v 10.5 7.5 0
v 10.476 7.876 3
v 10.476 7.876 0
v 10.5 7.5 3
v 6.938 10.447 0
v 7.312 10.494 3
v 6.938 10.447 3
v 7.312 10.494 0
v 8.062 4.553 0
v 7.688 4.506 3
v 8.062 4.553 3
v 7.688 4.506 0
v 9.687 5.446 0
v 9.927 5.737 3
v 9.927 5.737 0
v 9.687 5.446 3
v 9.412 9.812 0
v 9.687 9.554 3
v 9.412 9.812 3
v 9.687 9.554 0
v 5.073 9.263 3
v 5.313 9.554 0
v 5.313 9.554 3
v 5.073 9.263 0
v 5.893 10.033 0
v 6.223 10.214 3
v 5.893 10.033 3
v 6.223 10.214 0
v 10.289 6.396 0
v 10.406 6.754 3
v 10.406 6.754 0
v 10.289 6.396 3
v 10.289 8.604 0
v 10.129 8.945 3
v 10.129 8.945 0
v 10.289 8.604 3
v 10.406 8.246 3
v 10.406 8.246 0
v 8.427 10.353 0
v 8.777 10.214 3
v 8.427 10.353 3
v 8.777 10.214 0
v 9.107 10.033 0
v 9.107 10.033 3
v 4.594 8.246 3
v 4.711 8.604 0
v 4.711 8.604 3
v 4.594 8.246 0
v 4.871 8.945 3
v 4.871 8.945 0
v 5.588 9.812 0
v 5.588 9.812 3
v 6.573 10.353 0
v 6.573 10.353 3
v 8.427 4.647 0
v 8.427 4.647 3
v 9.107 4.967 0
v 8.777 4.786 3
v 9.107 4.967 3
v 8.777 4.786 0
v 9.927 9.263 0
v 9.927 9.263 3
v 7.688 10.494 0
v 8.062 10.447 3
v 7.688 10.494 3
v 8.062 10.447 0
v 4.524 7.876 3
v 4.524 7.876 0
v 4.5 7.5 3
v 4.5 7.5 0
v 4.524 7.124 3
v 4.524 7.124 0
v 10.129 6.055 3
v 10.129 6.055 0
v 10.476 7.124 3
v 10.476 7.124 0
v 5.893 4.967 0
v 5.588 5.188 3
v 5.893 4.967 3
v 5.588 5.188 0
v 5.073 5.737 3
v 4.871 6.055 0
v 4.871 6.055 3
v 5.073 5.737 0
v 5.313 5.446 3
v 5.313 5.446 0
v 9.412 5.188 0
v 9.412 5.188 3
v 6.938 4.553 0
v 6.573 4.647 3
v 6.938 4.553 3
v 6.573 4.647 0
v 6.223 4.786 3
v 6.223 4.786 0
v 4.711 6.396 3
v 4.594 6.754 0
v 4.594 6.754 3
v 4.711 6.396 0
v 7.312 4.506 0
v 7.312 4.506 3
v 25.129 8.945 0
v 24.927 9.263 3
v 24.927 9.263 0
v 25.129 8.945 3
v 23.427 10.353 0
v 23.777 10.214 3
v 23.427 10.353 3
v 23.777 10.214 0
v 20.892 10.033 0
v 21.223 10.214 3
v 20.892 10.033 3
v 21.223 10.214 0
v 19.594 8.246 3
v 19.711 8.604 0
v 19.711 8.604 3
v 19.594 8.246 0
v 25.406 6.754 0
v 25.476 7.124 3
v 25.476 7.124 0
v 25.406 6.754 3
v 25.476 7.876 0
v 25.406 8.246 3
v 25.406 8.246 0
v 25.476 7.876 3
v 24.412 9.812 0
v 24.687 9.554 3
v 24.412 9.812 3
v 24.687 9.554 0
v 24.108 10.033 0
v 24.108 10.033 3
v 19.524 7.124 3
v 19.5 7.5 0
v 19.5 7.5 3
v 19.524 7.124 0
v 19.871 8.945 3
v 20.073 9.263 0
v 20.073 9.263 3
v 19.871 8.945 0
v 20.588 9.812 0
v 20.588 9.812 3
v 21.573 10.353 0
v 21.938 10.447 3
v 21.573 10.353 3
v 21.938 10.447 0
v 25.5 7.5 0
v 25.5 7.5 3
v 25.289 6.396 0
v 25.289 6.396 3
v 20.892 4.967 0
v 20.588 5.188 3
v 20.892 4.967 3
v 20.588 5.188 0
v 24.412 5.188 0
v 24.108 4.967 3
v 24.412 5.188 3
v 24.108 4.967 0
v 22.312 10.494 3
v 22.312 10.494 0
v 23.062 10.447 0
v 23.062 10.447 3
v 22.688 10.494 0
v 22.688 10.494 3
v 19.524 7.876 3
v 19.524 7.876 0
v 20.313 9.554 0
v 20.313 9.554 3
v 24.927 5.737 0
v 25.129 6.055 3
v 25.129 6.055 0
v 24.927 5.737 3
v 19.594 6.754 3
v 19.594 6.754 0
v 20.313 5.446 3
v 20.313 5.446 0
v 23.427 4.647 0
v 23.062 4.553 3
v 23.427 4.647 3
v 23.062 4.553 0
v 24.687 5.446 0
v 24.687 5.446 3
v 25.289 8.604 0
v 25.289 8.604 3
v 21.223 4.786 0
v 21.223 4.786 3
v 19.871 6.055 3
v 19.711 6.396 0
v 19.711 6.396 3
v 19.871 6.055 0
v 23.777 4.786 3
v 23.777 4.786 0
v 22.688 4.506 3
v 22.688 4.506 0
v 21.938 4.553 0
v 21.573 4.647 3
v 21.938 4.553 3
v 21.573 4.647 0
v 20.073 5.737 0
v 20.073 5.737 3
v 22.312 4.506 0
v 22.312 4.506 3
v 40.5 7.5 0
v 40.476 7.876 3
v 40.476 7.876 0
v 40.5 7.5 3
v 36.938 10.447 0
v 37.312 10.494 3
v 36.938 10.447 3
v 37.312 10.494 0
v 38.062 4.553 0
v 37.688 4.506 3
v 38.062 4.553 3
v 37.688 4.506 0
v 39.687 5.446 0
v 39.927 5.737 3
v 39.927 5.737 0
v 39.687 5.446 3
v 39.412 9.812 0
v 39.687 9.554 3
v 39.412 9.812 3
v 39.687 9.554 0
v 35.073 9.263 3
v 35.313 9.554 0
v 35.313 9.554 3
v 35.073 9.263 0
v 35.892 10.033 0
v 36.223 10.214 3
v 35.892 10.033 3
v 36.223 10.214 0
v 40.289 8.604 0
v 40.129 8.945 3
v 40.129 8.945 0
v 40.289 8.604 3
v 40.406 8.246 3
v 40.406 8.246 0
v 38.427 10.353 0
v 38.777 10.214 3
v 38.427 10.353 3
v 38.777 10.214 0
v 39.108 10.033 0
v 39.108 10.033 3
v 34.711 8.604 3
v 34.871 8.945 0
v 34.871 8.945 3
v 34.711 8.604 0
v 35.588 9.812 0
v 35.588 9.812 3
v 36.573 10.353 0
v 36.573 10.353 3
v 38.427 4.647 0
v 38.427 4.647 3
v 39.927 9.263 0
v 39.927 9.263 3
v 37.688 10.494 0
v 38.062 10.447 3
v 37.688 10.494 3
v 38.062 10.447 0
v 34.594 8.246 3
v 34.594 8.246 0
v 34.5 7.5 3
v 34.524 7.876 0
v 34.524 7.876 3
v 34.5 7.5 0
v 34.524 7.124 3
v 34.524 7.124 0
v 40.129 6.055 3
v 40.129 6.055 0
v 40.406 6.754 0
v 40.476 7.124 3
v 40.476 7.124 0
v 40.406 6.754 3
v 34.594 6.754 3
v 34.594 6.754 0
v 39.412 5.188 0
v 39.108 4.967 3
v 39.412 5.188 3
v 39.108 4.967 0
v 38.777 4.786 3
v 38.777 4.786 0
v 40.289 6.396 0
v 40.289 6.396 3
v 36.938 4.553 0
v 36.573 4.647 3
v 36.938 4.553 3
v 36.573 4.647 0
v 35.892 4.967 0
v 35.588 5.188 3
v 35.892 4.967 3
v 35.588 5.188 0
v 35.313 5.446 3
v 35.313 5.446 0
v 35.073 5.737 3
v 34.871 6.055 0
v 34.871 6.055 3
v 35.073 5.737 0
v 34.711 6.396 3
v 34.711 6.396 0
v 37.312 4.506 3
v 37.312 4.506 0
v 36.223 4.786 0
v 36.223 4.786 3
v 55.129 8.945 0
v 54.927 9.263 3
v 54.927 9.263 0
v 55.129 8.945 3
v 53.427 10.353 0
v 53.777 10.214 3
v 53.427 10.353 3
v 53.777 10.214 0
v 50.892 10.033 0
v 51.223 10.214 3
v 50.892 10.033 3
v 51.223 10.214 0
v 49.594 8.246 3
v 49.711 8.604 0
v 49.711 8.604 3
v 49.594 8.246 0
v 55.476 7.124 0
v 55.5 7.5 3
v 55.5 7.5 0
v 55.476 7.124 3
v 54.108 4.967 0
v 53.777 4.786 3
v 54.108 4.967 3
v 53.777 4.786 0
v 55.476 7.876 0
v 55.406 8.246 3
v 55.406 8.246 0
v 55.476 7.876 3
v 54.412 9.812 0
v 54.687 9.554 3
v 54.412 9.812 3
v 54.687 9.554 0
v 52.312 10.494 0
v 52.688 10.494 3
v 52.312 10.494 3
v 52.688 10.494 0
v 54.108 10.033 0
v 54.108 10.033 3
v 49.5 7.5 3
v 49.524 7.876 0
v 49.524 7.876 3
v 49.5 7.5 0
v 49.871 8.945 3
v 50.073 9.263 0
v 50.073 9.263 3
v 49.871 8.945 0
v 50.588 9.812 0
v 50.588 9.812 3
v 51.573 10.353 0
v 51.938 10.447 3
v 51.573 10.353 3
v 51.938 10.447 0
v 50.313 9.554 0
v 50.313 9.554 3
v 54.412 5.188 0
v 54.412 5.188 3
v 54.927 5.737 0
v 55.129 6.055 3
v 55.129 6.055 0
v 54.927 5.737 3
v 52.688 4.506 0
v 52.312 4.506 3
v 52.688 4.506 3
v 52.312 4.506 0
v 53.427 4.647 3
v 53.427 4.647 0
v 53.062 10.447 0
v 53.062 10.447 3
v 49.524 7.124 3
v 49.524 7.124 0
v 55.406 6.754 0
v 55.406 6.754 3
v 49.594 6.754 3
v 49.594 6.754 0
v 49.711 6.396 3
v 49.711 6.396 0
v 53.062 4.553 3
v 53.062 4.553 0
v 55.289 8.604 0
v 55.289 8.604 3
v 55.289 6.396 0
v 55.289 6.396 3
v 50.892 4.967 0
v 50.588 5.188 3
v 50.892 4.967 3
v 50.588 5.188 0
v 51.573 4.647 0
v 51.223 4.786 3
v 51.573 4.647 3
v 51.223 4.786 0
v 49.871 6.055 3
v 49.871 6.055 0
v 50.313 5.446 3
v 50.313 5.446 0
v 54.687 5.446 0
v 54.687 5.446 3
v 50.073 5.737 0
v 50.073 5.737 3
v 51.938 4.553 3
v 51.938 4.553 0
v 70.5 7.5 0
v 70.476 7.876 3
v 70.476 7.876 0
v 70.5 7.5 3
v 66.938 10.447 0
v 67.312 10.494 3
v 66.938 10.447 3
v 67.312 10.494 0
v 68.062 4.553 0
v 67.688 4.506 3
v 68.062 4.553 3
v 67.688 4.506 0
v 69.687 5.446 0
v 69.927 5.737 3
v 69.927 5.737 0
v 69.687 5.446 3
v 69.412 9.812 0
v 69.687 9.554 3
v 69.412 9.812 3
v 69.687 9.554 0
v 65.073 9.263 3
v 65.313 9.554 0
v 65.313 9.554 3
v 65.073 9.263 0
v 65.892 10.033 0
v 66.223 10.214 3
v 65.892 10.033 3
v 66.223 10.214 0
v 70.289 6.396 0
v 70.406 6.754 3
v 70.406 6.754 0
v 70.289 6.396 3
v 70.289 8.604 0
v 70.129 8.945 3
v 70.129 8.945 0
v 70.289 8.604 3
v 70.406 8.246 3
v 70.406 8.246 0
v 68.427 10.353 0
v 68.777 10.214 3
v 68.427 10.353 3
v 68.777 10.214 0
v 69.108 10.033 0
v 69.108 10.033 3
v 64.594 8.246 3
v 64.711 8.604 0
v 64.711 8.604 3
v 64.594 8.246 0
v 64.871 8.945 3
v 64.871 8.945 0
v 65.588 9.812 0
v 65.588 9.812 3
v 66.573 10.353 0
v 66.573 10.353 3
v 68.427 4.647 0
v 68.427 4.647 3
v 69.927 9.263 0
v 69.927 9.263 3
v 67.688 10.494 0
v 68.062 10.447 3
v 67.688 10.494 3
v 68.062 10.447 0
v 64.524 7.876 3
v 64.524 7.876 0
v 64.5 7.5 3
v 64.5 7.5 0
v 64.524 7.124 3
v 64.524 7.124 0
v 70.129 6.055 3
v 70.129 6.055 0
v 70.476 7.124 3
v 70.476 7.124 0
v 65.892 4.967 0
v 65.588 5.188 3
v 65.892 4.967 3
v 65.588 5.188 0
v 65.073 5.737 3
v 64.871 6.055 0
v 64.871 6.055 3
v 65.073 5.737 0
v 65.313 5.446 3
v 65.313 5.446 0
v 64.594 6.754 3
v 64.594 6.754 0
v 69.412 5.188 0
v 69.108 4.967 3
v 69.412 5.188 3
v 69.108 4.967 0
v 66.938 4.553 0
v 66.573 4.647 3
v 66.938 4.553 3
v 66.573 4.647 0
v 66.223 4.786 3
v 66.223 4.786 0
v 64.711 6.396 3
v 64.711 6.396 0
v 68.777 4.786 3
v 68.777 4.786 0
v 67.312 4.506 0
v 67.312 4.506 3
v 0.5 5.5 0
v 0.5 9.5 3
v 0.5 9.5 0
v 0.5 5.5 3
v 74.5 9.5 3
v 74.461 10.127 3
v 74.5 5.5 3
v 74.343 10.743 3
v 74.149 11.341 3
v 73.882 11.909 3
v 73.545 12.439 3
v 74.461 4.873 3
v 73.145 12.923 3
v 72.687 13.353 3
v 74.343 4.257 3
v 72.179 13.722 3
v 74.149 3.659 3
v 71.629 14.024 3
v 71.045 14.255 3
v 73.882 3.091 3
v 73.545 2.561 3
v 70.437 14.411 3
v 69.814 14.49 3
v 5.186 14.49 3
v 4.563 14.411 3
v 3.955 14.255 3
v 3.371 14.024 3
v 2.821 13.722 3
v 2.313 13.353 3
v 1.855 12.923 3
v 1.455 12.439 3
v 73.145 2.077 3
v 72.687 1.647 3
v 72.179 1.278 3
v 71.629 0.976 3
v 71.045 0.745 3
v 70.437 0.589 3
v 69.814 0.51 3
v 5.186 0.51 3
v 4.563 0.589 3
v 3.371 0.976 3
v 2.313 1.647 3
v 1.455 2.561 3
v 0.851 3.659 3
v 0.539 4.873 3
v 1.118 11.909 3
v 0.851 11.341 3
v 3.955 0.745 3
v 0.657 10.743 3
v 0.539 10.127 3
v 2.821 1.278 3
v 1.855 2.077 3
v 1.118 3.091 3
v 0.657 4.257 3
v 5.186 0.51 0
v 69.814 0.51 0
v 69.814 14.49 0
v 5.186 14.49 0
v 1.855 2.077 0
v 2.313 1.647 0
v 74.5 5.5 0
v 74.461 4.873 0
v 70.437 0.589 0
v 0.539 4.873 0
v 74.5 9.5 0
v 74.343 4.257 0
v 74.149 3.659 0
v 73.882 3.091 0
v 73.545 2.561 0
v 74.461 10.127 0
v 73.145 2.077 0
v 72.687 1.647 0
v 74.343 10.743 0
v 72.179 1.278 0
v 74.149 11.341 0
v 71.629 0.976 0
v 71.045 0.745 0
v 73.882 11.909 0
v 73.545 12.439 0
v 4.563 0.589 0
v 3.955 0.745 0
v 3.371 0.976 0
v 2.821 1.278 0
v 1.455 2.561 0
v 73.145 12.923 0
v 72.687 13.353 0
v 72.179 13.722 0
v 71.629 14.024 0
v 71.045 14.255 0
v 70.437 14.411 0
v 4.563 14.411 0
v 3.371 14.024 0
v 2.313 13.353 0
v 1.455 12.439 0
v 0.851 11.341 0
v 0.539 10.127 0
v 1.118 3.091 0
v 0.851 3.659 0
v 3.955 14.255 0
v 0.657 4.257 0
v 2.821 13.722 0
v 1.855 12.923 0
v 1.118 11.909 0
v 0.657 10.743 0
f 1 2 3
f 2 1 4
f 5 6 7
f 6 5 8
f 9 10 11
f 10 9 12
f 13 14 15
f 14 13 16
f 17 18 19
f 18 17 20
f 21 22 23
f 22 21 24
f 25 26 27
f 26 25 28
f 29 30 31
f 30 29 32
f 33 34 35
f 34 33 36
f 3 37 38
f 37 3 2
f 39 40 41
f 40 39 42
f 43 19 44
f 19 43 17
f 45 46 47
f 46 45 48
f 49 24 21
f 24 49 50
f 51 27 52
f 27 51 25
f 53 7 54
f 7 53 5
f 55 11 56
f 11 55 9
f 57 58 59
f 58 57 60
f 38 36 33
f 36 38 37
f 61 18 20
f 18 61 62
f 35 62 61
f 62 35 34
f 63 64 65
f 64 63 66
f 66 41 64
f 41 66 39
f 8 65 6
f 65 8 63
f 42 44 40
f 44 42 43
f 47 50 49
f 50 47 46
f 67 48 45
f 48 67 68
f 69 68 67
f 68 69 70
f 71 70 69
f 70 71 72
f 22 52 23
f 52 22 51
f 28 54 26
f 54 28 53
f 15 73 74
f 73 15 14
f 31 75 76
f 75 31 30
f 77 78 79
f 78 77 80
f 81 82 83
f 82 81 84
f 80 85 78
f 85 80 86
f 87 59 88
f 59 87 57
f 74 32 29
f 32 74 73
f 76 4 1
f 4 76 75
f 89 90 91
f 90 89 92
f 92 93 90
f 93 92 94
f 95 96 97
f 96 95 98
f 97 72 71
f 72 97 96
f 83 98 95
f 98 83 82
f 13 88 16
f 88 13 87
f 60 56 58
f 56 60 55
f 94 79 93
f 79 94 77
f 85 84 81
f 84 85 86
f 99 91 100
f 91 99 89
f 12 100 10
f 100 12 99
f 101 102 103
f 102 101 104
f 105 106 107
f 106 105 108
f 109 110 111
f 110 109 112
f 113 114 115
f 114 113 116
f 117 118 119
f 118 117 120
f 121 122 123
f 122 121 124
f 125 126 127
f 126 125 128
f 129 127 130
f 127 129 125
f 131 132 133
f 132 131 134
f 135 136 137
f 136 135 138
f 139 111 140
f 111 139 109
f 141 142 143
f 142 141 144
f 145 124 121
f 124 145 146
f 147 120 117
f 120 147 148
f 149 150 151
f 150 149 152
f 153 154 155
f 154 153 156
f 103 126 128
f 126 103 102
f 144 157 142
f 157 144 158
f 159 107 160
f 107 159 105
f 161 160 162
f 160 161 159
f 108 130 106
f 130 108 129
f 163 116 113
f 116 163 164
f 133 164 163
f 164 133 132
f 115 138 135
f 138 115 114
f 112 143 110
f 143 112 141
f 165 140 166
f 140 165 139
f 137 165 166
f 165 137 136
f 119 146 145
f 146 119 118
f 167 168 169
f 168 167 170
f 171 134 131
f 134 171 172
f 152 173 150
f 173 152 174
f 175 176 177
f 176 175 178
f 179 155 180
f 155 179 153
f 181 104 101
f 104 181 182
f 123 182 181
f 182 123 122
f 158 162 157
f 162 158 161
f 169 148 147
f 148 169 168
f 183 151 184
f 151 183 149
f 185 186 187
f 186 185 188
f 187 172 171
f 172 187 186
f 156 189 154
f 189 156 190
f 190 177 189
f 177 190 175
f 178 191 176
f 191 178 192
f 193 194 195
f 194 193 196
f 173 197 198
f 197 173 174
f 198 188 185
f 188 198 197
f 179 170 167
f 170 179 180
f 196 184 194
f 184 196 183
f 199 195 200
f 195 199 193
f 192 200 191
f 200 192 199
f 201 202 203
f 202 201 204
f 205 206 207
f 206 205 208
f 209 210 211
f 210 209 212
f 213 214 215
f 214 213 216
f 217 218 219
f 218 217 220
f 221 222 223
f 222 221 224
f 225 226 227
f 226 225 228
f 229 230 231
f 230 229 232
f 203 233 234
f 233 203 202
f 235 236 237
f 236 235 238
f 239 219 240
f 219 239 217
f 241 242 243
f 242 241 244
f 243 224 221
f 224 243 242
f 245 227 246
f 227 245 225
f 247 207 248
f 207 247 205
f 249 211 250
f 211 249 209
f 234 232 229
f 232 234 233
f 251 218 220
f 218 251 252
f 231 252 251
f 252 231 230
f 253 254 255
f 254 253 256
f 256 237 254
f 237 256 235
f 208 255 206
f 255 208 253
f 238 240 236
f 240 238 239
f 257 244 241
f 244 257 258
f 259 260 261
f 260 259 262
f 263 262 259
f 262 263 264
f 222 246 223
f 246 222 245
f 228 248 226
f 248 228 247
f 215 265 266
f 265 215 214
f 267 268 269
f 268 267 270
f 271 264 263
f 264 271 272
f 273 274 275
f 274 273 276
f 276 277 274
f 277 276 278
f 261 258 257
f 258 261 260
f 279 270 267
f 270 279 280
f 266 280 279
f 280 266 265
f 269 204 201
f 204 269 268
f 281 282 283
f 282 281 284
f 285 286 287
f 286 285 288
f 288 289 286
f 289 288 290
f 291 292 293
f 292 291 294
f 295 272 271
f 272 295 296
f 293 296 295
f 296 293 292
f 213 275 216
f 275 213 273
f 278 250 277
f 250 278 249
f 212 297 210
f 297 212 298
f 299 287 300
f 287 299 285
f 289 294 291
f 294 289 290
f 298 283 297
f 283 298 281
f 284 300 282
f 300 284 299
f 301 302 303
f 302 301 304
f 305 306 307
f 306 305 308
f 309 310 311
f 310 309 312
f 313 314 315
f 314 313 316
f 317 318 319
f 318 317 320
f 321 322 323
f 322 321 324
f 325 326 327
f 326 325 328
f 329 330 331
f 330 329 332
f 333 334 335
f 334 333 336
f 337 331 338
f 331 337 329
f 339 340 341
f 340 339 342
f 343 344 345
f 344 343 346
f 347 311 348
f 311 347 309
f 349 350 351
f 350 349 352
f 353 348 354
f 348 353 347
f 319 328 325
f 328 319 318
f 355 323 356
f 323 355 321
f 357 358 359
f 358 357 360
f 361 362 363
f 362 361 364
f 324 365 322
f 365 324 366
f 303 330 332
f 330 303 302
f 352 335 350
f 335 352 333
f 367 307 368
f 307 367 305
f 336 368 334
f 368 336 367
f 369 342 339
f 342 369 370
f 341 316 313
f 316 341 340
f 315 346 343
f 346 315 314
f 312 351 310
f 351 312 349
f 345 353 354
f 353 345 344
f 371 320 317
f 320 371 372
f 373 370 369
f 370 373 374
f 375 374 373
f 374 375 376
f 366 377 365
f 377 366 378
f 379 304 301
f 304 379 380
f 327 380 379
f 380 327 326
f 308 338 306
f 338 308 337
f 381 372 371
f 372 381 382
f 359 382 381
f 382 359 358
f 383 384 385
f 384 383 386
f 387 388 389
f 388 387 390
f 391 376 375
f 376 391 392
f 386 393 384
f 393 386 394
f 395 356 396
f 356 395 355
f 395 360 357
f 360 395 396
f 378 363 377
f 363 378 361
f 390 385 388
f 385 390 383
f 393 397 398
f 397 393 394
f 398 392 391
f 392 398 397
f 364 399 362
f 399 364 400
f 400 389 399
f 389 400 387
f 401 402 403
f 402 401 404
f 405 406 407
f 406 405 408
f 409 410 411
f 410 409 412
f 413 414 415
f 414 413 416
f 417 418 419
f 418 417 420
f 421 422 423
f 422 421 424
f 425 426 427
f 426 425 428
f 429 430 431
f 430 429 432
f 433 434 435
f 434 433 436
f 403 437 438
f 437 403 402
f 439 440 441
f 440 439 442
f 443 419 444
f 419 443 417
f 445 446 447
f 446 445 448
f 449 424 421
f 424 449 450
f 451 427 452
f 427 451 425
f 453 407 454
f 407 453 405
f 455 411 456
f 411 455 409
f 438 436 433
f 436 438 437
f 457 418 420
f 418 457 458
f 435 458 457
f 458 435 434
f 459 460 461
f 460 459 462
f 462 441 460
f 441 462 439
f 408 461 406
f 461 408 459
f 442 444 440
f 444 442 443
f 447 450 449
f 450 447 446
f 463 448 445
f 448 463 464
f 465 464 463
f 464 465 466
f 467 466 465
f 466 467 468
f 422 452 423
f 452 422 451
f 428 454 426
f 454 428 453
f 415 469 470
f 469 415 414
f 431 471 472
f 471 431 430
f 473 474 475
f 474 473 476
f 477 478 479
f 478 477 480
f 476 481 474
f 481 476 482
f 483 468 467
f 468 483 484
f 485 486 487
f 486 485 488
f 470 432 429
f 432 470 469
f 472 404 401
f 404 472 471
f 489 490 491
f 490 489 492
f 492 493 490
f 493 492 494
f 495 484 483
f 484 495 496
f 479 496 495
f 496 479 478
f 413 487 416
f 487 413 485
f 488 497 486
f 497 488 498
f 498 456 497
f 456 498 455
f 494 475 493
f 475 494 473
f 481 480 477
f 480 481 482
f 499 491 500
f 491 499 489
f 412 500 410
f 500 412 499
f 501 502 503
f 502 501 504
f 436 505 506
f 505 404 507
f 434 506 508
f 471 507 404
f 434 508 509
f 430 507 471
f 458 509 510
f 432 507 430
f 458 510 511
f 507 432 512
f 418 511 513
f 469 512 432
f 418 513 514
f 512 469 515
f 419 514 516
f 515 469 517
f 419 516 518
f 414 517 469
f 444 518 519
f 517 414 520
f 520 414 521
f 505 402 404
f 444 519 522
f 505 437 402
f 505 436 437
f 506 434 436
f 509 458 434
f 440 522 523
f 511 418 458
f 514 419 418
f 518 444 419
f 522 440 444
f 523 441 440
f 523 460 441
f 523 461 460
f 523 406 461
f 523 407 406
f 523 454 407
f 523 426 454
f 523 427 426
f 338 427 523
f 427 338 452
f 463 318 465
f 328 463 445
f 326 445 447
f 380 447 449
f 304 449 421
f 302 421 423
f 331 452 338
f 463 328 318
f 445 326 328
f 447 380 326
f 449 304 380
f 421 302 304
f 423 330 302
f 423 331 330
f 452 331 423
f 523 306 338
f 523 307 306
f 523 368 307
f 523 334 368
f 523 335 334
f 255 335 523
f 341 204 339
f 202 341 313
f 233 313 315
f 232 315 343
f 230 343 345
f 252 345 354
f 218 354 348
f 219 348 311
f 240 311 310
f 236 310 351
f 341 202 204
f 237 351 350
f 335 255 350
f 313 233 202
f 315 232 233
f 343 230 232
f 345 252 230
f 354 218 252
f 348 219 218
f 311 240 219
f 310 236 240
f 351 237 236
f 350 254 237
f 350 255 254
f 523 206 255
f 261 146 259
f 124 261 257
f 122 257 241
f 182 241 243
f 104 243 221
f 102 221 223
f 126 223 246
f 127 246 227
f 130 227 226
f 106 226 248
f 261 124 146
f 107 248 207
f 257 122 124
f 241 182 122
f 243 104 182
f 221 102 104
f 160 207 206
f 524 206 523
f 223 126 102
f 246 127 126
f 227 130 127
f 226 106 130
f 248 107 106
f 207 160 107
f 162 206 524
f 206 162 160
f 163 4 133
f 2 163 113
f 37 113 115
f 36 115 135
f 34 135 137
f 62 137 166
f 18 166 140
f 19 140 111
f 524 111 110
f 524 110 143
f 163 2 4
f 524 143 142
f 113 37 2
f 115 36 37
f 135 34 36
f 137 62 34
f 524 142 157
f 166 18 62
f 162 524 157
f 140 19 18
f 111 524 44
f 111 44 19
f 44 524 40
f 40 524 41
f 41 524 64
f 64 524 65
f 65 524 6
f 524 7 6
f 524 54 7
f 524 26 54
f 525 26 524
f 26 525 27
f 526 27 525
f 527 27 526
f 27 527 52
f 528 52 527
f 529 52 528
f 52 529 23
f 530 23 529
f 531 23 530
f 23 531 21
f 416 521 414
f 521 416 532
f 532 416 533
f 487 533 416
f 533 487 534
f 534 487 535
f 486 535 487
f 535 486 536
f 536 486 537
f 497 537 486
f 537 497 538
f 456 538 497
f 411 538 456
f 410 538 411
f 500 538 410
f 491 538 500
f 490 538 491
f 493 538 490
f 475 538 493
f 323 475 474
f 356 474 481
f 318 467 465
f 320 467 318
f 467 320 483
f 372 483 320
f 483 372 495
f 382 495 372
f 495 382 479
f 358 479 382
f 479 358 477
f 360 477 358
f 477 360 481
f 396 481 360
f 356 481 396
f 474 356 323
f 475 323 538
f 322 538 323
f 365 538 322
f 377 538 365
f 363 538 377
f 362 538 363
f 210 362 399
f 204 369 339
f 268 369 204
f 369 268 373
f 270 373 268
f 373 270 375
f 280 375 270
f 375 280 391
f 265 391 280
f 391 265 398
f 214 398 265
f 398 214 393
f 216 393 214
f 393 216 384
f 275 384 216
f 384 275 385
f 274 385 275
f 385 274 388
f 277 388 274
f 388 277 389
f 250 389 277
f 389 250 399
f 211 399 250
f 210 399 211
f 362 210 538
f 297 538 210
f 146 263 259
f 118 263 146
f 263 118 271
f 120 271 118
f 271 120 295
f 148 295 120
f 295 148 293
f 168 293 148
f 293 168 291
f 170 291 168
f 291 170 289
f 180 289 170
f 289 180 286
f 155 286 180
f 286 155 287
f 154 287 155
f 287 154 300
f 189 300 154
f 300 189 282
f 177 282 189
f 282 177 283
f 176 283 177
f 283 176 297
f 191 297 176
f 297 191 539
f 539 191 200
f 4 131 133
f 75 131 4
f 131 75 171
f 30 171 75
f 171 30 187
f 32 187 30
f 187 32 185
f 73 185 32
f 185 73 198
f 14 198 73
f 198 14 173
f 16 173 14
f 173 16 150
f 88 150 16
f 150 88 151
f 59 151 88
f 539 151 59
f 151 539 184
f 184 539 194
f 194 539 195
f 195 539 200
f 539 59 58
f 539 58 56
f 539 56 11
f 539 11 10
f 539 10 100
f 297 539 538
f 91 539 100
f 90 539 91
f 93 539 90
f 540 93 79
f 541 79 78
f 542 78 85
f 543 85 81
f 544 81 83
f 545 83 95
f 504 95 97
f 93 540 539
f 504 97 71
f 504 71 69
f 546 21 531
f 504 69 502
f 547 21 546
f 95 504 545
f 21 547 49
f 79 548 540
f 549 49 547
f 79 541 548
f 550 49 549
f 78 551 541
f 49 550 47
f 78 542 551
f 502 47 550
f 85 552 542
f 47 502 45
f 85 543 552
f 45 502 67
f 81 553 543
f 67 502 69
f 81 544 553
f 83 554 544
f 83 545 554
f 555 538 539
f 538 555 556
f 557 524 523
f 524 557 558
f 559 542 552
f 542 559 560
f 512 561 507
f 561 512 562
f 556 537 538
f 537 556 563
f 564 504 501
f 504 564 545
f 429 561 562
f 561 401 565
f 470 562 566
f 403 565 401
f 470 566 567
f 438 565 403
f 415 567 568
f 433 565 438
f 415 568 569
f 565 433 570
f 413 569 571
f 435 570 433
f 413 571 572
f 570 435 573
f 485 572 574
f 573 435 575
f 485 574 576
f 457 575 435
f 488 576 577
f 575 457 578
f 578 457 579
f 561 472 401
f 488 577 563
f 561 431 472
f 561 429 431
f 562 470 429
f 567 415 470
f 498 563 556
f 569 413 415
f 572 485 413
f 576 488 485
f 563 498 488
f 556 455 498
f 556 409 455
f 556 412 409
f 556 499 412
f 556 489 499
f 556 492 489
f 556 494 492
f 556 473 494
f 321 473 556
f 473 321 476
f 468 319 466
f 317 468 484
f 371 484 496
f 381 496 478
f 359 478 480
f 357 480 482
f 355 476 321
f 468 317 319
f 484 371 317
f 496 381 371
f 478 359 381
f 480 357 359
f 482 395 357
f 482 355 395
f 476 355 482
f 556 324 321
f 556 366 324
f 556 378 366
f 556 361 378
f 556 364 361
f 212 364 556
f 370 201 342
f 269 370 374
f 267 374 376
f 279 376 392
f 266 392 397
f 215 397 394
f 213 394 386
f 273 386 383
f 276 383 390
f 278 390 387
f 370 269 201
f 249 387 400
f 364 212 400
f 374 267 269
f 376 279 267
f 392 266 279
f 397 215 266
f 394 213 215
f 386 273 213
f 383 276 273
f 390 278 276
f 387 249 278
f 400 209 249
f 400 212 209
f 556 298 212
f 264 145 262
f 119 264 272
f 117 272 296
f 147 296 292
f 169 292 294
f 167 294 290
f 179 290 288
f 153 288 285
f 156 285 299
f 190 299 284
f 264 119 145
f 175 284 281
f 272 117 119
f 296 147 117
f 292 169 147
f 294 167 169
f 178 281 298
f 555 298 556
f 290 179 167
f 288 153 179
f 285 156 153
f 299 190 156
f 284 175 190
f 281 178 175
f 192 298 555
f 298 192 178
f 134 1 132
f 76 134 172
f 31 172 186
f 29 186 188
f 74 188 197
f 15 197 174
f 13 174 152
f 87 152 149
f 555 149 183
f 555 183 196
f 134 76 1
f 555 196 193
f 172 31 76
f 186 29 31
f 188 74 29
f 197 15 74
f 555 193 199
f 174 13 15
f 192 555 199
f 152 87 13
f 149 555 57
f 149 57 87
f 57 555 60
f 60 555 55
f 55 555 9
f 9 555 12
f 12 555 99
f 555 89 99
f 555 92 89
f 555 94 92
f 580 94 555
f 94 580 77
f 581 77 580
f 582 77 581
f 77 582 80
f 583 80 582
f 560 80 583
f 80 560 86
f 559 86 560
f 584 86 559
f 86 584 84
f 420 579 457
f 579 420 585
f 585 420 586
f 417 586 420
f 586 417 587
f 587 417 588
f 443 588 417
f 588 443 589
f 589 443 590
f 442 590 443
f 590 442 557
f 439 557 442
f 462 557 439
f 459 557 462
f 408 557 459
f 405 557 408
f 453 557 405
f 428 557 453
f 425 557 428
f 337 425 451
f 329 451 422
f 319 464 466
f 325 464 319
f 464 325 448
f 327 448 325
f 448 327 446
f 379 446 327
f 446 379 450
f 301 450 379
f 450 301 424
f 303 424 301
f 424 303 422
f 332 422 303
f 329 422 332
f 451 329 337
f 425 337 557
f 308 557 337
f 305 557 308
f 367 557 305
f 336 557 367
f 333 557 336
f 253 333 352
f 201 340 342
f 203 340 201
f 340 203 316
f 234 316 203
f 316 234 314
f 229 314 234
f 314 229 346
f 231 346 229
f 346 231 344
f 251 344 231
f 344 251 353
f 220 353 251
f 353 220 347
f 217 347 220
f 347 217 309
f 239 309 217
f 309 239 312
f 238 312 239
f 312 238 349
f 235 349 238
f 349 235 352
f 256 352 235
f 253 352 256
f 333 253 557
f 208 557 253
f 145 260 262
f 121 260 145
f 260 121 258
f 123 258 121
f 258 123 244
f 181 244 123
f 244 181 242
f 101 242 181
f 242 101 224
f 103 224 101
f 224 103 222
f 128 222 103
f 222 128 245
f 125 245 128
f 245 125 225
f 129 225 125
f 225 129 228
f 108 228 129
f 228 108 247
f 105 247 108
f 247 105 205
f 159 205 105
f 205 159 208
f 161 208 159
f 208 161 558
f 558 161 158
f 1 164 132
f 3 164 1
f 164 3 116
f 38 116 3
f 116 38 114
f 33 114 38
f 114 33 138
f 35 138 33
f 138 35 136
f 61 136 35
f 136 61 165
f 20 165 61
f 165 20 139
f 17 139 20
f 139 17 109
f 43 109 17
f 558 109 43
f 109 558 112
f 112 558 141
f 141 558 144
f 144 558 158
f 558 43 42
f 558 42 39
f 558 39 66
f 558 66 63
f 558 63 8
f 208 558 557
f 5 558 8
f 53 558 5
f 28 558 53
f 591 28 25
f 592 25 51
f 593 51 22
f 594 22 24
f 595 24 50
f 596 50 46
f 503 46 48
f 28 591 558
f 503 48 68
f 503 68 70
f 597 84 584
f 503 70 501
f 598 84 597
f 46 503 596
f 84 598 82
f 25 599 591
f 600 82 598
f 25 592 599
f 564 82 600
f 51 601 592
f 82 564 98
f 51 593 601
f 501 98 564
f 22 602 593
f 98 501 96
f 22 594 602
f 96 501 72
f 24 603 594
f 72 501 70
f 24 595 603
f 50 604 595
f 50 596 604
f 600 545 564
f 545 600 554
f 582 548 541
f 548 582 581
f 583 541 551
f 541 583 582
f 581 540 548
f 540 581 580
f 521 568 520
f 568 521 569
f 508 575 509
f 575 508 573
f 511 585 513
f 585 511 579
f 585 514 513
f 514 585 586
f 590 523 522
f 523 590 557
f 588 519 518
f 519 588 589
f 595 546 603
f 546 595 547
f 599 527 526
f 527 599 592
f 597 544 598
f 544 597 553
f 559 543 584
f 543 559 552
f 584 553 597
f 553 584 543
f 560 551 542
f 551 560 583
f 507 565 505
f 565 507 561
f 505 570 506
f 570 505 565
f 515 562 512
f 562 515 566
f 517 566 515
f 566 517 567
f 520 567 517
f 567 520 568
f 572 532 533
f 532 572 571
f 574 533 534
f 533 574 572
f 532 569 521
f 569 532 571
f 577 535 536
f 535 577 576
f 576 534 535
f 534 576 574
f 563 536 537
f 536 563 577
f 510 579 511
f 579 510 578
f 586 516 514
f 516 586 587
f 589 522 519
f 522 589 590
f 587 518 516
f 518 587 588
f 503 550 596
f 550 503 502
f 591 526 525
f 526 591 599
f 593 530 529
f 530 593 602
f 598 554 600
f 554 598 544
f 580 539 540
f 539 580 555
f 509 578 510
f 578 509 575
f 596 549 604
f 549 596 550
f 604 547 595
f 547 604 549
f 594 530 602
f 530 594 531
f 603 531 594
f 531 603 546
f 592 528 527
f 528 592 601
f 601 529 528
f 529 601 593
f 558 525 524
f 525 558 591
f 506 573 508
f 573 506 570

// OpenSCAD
// Generated by SolidPython 1.1.3 on 2023-01-30 13:34:20
$fn = 50;


difference() {
	union() {
		translate(v = [37.5000000000, 7.5000000000, 0]) {
			rotate(a = [0, 0, 0]) {
				hull() {
					translate(v = [-32.0000000000, 2.0000000000, 0]) {
						rotate(a = [0, 0, 0]) {
							translate(v = [0, 0, 0]) {
								rotate(a = [0, 0, 0]) {
									cylinder(h = 3, r = 5);
								}
							}
						}
					}
					translate(v = [32.0000000000, 2.0000000000, 0]) {
						rotate(a = [0, 0, 0]) {
							translate(v = [0, 0, 0]) {
								rotate(a = [0, 0, 0]) {
									cylinder(h = 3, r = 5);
								}
							}
						}
					}
					translate(v = [-32.0000000000, -2.0000000000, 0]) {
						rotate(a = [0, 0, 0]) {
							translate(v = [0, 0, 0]) {
								rotate(a = [0, 0, 0]) {
									cylinder(h = 3, r = 5);
								}
							}
						}
					}
					translate(v = [32.0000000000, -2.0000000000, 0]) {
						rotate(a = [0, 0, 0]) {
							translate(v = [0, 0, 0]) {
								rotate(a = [0, 0, 0]) {
									cylinder(h = 3, r = 5);
								}
							}
						}
					}
				}
			}
		}
	}
	union() {
		translate(v = [7.5000000000, 7.5000000000, 0]) {
			rotate(a = [0, 0, 0]) {
				translate(v = [0, 0, -50]) {
					rotate(a = [0, 0, 0]) {
						cylinder(h = 100, r = 3.0000000000);
					}
				}
			}
		}
		translate(v = [22.5000000000, 7.5000000000, 0]) {
			rotate(a = [0, 0, 0]) {
				translate(v = [0, 0, -50]) {
					rotate(a = [0, 0, 0]) {
						cylinder(h = 100, r = 3.0000000000);
					}
				}
			}
		}
		translate(v = [37.5000000000, 7.5000000000, 0]) {
			rotate(a = [0, 0, 0]) {
				translate(v = [0, 0, -50]) {
					rotate(a = [0, 0, 0]) {
						cylinder(h = 100, r = 3.0000000000);
					}
				}
			}
		}
		translate(v = [52.5000000000, 7.5000000000, 0]) {
			rotate(a = [0, 0, 0]) {
				translate(v = [0, 0, -50]) {
					rotate(a = [0, 0, 0]) {
						cylinder(h = 100, r = 3.0000000000);
					}
				}
			}
		}
		translate(v = [67.5000000000, 7.5000000000, 0]) {
			rotate(a = [0, 0, 0]) {
				translate(v = [0, 0, -50]) {
					rotate(a = [0, 0, 0]) {
						cylinder(h = 100, r = 3.0000000000);
					}
				}
			}
		}
	}
}
/***********************************************
*********      SolidPython code:      **********
************************************************
 
from solid import *
import os
import subprocess

import oomB

import opsc_library_gen

mode = "laser"
#mode = "3d_print"

defined_objects = {}

radius_dict = {}
countersunk_dict = {}


def set_mode(m):
    global mode
    mode = m
    radius_dict['M6'] = 6.5/2
    radius_dict['M3'] = 3.3/2
    if mode == "laser":
        radius_dict['M6'] = 6/2
        radius_dict['M3'] = 3/2

    countersunk_dict['M3'] = {}
    countersunk_dict['M3']['little_rad'] = radius_dict['M3']
    countersunk_dict['M3']['big_rad'] = (5.5+0.6)/2
    if mode == "laser":
        countersunk_dict['M3']['big_rad'] = (4.75+0.6)/2
        countersunk_dict['M3']['little_rad'] = (4.75+0.6)/2

    countersunk_dict['M3']['height'] = 1.7


def opsc_make_object(filename, objects, save_type="none",resolution=50, layers = 1, tilediff = 200, mode="laser"):
    set_mode(mode)
    save_type = save_type.lower()
    os.makedirs(os.path.dirname(filename), exist_ok=True)
    final_object = opsc_get_object(objects)
    # Save the final object to the specified filename    
    scad_render_to_file(final_object, filename, file_header='$fn = %s;' % resolution, include_orig_code=True)
    if mode == "laser":
        filename_laser = filename.replace(".scad","-flat.scad")
        scad_render_to_file(getLaser(final_object, layers=layers, tilediff=tilediff), filename_laser, file_header='$fn = %s;' % resolution, include_orig_code=True)
        if save_type == "all":
            saveToAll(filename_laser)
        elif save_type == "dxf":
            saveToDxf(filename_laser)
    if save_type == "all":
        saveToAll(filename)
    elif save_type == "dxf":
        saveToDxf(filename)


def opsc_get_object(objects):
    # Create the solidpython objects
    positive_objects = [get_opsc_item(obj) for obj in objects if obj['type'] == 'positive']
    negative_objects = [get_opsc_item(obj) for obj in objects if obj['type'] == 'negative']
    # Union the positive objects
    positive_object = union()(*positive_objects)
    # Union the negative objects
    negative_object = union()(*negative_objects)
    # Create the final object by subtracting the negative objects from the positive objects
    return difference()(positive_object, negative_object)

def get_opsc_item(params):
    # A dictionary to map radius string values to numerical values
    #radius_dict = {'small': 5, 'medium': 10, 'large': 15}
    # An array of function names for basic shapes
    basic_shapes = ['cube', 'sphere', 'cylinder']
    
    # An array of function names for other shapes
    other_shapes = ['hole', 'slot', 'rounded_rectangle', 'countersunk']
    


    # Convert radius to r if present, and remove radius from the params dictionary
    if 'radius' in params:
        if isinstance(params['radius'], str):
            # Use the radius_dict to map the radius string value to a numerical value
            params['r'] = radius_dict[params['radius']]
        else:
            params['r'] = params['radius']
        del params['radius']
    

    # Check if the object type is a basic shape
    if params['shape'] in basic_shapes:
        # Remove shape and unexpected dictionary values
        allowed_keys = {'size', 'r', 'r1', 'r2', 'd', 'h', 'rw', 'rh', 'dw', 'dh'}
        shape_params = {k: v for k, v in params.items() if k in allowed_keys}

        # Call the corresponding function for the shape parameter, using ** notation to pass the shape_params dictionary as keyword arguments
        return get_opsc_transform(params,globals()[params['shape']](**shape_params))
    
    # If the object type is not a basic shape, check if it's a defined object or one of the other shapes
    elif params['shape'] in other_shapes:
        # Call the corresponding function for the shape parameter, passing the params dictionary as an argument
        p2 = copy.deepcopy(params)
        p2["pos"] = [0,0,0]
        return get_opsc_transform(params,globals()[params['shape']](p2))
    
    # If the object is not a basic shape or a defined object, try to import it from a .scad file
    else:
        obj = defined_objects[params['shape']]
        return get_opsc_transform(params,obj)

def get_opsc_transform(params, solid_obj):
    # Rotate the object based on the 'rot' field in the params dictionary, or the 'rotX', 'rotY', and 'rotZ' fields if 'rot' is not present
    rot = params.get('rot', [])
    if rot:
        rotX, rotY, rotZ = rot
    else:
        rotX = params.get('rotX', 0)
        rotY = params.get('rotY', 0)
        rotZ = params.get('rotZ', 0)
    solid_obj = rotate([rotX, rotY, rotZ])(solid_obj)

    # Translate the object based on the 'pos' field in the params dictionary, or the 'x', 'y', and 'z' fields if 'pos' is not present
    pos = params.get('pos', [])
    if pos:
        x, y, z = pos
    else:
        x = params.get('x', 0)
        y = params.get('y', 0)
        z = params.get('z', 0)
    solid_obj = translate([x, y, z])(solid_obj)
    return solid_obj


import random

def opsc_easy_array(type, shape, repeats, pos_start, shift_arr, **kwargs):
    for i in range(0,3):
        repeats.append(1)
        pos_start.append(0)
        shift_arr.append(0)
    return_objects = []

    for x in range(0,repeats[0]):
        for y in range(0,repeats[1]):
            for z in range(0,repeats[2]):
                return_objects.append(opsc_easy(type, shape, pos=[pos_start[0]+x*shift_arr[0],pos_start[1]+y*shift_arr[1],pos_start[2]+z*shift_arr[2]], **kwargs))
    return return_objects                



def opsc_easy(type, shape, **kwargs):
    obj = {
        'type': type,
        'shape': shape
    }
    for param in ['size', 'r', 'r1', 'r2', 'd', 'h', 'rw', 'rh', 'dw', 'dh', 'pos', 'x', 'y', 'z', 'rot', 'rotX', 'rotY', 'rotZ', "w"]:
        if param in kwargs:
            obj[param] = kwargs[param]
    return obj

def hole(params):
    p2 = copy.deepcopy(params)  
    # Check if the radius is a string and replace it with the corresponding value from the dictionary
    if isinstance(p2['r'], str):
        p2['r'] = radius_dict[p2['r']]
    
    # Set the height to 100 if not specified
    if 'h' not in p2:
        p2['h'] = 100
        p2["pos"] = [0,0,-50]
    p2["center"] = True
    # Create the cylinder object
    p2["shape"] = "cylinder"
    p2["type"] = "positive"

    return get_opsc_item(p2)

import copy

def countersunk(params):
    p2 = copy.deepcopy(params)
    counter_rad = p2['r']
    p2['r'] = radius_dict[p2['r']]
    hp = copy.deepcopy(p2)
    hp["type"] = "positive"
    hp["shape"] = "hole"
    del hp["rot"]
    hol = get_opsc_item(hp)
    
    cp = copy.deepcopy(p2)
    cp["h"] = countersunk_dict[counter_rad]["height"]
    cp["r2"] = countersunk_dict[counter_rad]["little_rad"]
    cp["r1"] = countersunk_dict[counter_rad]["big_rad"]
    del cp["r"]
    del cp["rot"]
    cp["type"] = "positive"
    cp["shape"] = "cylinder"
    cp["pos"] = [0,0,0]

    top = get_opsc_item(cp)
    return union()(hol,top)



def slot(params):  
    p2 = copy.deepcopy(params) 
    if isinstance(p2['r'], str):
        p2['r'] = radius_dict[p2['r']]
    p2["type"] = "positive"
    p2["shape"] = "hole"
    del p2["rot"]
    p2["pos"] = [0,0,0]
    left = copy.deepcopy(p2)
    right = copy.deepcopy(p2)
    left["pos"][0] = p2["w"] / 2 - p2["r"] 
    
    right["pos"][0] = -p2["w"] / 2 + p2["r"] 
    pass
    leftObj = get_opsc_item(left)
    rightObj = get_opsc_item(right)
    return hull()(leftObj, rightObj)

def rounded_rectangle(params):   
    p2 = copy.deepcopy(params) 
    p2["h"] = p2["size"][2]
    p2["pos"] = p2.get("pos", [0, 0, 0]) 
    p2["type"] = "positive"
    p2["shape"] = "hole"
    p2["pos"] = [0,0,0]
    
    if 'rot' in p2:
        del p2["rot"]   
    if 'r' not in p2:
        p2["r"] = 5 
    tl = copy.deepcopy(p2)
    tr = copy.deepcopy(p2)
    bl = copy.deepcopy(p2)
    br = copy.deepcopy(p2)
    tl["pos"][0] = -(p2["size"][0] - p2["r"]*2)/2
    tl["pos"][1] = (p2["size"][1] - p2["r"]*2)/2
    tr["pos"][0] = (p2["size"][0] - p2["r"]*2)/2
    tr["pos"][1] = (p2["size"][1] - p2["r"]*2)/2
    bl["pos"][0] = -(p2["size"][0] - p2["r"]*2)/2
    bl["pos"][1] = -(p2["size"][1] - p2["r"]*2)/2
    br["pos"][0] = (p2["size"][0] - p2["r"]*2)/2
    br["pos"][1] = -(p2["size"][1] - p2["r"]*2)/2
    del tl["size"]
    del tr["size"]
    del bl["size"]
    del br["size"]
    tlo = get_opsc_item(tl)
    tro = get_opsc_item(tr)
    blo = get_opsc_item(bl)
    bro = get_opsc_item(br)    
    return hull()(tlo, tro, blo, bro)



def import_scad_object(filename):
    # Import the .scad file and convert it to a solidpython object
    #filename = "parts"
    obj = import_scad(filename)
    return obj.main()
    


import os
import solid as solidpython

# A dictionary to store the defined objects


def load_scad_objects():
    opsc_library_gen.gen_library(defined_objects)

import random

def test(num_objects):
    objects = []
    for i in range(num_objects):
        # Choose a random shape
        #shape = random.choice(['cube', 'sphere', 'cylinder', 'hole', 'slot', "rounded_rectangle"])
        shape = random.choice(["rounded_rectangle"])

        # Choose a random type
        type = random.choice(['positive', 'negative'])
        
        # Create an empty object dictionary
        obj = {'shape': shape, 'type': type}
        
        # Set shape-specific parameters
        if obj['shape'] in ['cube']:
            obj['size'] =  [random.uniform(5, 15), random.uniform(5, 15), random.uniform(5, 15)]
        if obj['shape'] in ['rounded_rectangle']:
            obj['size'] =  [random.uniform(5, 15), random.uniform(5, 15), random.uniform(5, 15)]
            obj['r'] = random.uniform(0.5, 5)
        elif obj['shape'] == 'sphere':
            obj['r'] = random.uniform(5, 15)
        elif obj['shape'] in ['cylinder', 'hole']:
            obj['r'] = random.uniform(0.5, 5)
            obj['h'] = random.uniform(5, 15)
        elif obj['shape'] == 'slot':
            obj['r'] = random.uniform(0.5, 5)
            obj['h'] = random.uniform(5, 15)
            obj['w'] = random.uniform(5, 15)
        
        # Set a random position and rotation
        obj['pos'] = [random.uniform(-20, 20), random.uniform(-20, 20), random.uniform(-20, 20)]
        obj['rot'] = [random.uniform(-180, 180), random.uniform(-180, 180), random.uniform(-180, 180)]
        
        # Add the object to the list
        objects.append(obj)
    return objects

####### old file saving
def saveToAll(fileIn):
    saveToDxf(fileIn)
    saveToPng(fileIn)
    saveToStl(fileIn)
    saveToSvg(fileIn)

def saveToDxf(fileIn, fileOut="", copy_to_laser=True):
    if fileOut == "":
        fileOut = fileIn.replace(".scad",".dxf")
    saveToFile(fileIn, fileOut)


    
def saveToPng(fileIn, fileOut="",extra="--render"):
    if fileOut == "":
        fileOut = fileIn.replace(".scad",".png")
    saveToFile(fileIn, fileOut)

def saveToStl(fileIn, fileOut=""):
    if fileOut == "":
        fileOut = fileIn.replace(".scad",".stl")
    saveToFile(fileIn, fileOut)
    
def saveToSvg(fileIn, fileOut=""):
    if fileOut == "":
        fileOut = fileIn.replace(".scad",".svg")
    saveToFile(fileIn, fileOut)

def saveToFile(fileIn, fileOut,extra=""):
    #extra = extra + " --colorscheme Tomorrow"

    launchStr = 'openscad -o "' + fileOut + '"' + extra + ' "' + fileIn + '"'
    if ".png" in fileOut:
        launchStr = launchStr + " --render"
    print("            saveToFile launch string: " + launchStr)
    subprocess.run(launchStr)
    x=0

def getLaser(final_object,start=1.5,layers=1,thickness=3,tilediff=200):
        rv= []

        for x in range(layers):
            rv.append(translate([0,x*tilediff,0])(
                    projection()(
                        intersection()(translate([-500,-500,start+x*thickness])(cube(size=[1000,1000,0.1])),
                            final_object
                        )
                    )
            )
            )
            
        return union()(rv)

set_mode("laser")
load_scad_objects() 
 
************************************************/
